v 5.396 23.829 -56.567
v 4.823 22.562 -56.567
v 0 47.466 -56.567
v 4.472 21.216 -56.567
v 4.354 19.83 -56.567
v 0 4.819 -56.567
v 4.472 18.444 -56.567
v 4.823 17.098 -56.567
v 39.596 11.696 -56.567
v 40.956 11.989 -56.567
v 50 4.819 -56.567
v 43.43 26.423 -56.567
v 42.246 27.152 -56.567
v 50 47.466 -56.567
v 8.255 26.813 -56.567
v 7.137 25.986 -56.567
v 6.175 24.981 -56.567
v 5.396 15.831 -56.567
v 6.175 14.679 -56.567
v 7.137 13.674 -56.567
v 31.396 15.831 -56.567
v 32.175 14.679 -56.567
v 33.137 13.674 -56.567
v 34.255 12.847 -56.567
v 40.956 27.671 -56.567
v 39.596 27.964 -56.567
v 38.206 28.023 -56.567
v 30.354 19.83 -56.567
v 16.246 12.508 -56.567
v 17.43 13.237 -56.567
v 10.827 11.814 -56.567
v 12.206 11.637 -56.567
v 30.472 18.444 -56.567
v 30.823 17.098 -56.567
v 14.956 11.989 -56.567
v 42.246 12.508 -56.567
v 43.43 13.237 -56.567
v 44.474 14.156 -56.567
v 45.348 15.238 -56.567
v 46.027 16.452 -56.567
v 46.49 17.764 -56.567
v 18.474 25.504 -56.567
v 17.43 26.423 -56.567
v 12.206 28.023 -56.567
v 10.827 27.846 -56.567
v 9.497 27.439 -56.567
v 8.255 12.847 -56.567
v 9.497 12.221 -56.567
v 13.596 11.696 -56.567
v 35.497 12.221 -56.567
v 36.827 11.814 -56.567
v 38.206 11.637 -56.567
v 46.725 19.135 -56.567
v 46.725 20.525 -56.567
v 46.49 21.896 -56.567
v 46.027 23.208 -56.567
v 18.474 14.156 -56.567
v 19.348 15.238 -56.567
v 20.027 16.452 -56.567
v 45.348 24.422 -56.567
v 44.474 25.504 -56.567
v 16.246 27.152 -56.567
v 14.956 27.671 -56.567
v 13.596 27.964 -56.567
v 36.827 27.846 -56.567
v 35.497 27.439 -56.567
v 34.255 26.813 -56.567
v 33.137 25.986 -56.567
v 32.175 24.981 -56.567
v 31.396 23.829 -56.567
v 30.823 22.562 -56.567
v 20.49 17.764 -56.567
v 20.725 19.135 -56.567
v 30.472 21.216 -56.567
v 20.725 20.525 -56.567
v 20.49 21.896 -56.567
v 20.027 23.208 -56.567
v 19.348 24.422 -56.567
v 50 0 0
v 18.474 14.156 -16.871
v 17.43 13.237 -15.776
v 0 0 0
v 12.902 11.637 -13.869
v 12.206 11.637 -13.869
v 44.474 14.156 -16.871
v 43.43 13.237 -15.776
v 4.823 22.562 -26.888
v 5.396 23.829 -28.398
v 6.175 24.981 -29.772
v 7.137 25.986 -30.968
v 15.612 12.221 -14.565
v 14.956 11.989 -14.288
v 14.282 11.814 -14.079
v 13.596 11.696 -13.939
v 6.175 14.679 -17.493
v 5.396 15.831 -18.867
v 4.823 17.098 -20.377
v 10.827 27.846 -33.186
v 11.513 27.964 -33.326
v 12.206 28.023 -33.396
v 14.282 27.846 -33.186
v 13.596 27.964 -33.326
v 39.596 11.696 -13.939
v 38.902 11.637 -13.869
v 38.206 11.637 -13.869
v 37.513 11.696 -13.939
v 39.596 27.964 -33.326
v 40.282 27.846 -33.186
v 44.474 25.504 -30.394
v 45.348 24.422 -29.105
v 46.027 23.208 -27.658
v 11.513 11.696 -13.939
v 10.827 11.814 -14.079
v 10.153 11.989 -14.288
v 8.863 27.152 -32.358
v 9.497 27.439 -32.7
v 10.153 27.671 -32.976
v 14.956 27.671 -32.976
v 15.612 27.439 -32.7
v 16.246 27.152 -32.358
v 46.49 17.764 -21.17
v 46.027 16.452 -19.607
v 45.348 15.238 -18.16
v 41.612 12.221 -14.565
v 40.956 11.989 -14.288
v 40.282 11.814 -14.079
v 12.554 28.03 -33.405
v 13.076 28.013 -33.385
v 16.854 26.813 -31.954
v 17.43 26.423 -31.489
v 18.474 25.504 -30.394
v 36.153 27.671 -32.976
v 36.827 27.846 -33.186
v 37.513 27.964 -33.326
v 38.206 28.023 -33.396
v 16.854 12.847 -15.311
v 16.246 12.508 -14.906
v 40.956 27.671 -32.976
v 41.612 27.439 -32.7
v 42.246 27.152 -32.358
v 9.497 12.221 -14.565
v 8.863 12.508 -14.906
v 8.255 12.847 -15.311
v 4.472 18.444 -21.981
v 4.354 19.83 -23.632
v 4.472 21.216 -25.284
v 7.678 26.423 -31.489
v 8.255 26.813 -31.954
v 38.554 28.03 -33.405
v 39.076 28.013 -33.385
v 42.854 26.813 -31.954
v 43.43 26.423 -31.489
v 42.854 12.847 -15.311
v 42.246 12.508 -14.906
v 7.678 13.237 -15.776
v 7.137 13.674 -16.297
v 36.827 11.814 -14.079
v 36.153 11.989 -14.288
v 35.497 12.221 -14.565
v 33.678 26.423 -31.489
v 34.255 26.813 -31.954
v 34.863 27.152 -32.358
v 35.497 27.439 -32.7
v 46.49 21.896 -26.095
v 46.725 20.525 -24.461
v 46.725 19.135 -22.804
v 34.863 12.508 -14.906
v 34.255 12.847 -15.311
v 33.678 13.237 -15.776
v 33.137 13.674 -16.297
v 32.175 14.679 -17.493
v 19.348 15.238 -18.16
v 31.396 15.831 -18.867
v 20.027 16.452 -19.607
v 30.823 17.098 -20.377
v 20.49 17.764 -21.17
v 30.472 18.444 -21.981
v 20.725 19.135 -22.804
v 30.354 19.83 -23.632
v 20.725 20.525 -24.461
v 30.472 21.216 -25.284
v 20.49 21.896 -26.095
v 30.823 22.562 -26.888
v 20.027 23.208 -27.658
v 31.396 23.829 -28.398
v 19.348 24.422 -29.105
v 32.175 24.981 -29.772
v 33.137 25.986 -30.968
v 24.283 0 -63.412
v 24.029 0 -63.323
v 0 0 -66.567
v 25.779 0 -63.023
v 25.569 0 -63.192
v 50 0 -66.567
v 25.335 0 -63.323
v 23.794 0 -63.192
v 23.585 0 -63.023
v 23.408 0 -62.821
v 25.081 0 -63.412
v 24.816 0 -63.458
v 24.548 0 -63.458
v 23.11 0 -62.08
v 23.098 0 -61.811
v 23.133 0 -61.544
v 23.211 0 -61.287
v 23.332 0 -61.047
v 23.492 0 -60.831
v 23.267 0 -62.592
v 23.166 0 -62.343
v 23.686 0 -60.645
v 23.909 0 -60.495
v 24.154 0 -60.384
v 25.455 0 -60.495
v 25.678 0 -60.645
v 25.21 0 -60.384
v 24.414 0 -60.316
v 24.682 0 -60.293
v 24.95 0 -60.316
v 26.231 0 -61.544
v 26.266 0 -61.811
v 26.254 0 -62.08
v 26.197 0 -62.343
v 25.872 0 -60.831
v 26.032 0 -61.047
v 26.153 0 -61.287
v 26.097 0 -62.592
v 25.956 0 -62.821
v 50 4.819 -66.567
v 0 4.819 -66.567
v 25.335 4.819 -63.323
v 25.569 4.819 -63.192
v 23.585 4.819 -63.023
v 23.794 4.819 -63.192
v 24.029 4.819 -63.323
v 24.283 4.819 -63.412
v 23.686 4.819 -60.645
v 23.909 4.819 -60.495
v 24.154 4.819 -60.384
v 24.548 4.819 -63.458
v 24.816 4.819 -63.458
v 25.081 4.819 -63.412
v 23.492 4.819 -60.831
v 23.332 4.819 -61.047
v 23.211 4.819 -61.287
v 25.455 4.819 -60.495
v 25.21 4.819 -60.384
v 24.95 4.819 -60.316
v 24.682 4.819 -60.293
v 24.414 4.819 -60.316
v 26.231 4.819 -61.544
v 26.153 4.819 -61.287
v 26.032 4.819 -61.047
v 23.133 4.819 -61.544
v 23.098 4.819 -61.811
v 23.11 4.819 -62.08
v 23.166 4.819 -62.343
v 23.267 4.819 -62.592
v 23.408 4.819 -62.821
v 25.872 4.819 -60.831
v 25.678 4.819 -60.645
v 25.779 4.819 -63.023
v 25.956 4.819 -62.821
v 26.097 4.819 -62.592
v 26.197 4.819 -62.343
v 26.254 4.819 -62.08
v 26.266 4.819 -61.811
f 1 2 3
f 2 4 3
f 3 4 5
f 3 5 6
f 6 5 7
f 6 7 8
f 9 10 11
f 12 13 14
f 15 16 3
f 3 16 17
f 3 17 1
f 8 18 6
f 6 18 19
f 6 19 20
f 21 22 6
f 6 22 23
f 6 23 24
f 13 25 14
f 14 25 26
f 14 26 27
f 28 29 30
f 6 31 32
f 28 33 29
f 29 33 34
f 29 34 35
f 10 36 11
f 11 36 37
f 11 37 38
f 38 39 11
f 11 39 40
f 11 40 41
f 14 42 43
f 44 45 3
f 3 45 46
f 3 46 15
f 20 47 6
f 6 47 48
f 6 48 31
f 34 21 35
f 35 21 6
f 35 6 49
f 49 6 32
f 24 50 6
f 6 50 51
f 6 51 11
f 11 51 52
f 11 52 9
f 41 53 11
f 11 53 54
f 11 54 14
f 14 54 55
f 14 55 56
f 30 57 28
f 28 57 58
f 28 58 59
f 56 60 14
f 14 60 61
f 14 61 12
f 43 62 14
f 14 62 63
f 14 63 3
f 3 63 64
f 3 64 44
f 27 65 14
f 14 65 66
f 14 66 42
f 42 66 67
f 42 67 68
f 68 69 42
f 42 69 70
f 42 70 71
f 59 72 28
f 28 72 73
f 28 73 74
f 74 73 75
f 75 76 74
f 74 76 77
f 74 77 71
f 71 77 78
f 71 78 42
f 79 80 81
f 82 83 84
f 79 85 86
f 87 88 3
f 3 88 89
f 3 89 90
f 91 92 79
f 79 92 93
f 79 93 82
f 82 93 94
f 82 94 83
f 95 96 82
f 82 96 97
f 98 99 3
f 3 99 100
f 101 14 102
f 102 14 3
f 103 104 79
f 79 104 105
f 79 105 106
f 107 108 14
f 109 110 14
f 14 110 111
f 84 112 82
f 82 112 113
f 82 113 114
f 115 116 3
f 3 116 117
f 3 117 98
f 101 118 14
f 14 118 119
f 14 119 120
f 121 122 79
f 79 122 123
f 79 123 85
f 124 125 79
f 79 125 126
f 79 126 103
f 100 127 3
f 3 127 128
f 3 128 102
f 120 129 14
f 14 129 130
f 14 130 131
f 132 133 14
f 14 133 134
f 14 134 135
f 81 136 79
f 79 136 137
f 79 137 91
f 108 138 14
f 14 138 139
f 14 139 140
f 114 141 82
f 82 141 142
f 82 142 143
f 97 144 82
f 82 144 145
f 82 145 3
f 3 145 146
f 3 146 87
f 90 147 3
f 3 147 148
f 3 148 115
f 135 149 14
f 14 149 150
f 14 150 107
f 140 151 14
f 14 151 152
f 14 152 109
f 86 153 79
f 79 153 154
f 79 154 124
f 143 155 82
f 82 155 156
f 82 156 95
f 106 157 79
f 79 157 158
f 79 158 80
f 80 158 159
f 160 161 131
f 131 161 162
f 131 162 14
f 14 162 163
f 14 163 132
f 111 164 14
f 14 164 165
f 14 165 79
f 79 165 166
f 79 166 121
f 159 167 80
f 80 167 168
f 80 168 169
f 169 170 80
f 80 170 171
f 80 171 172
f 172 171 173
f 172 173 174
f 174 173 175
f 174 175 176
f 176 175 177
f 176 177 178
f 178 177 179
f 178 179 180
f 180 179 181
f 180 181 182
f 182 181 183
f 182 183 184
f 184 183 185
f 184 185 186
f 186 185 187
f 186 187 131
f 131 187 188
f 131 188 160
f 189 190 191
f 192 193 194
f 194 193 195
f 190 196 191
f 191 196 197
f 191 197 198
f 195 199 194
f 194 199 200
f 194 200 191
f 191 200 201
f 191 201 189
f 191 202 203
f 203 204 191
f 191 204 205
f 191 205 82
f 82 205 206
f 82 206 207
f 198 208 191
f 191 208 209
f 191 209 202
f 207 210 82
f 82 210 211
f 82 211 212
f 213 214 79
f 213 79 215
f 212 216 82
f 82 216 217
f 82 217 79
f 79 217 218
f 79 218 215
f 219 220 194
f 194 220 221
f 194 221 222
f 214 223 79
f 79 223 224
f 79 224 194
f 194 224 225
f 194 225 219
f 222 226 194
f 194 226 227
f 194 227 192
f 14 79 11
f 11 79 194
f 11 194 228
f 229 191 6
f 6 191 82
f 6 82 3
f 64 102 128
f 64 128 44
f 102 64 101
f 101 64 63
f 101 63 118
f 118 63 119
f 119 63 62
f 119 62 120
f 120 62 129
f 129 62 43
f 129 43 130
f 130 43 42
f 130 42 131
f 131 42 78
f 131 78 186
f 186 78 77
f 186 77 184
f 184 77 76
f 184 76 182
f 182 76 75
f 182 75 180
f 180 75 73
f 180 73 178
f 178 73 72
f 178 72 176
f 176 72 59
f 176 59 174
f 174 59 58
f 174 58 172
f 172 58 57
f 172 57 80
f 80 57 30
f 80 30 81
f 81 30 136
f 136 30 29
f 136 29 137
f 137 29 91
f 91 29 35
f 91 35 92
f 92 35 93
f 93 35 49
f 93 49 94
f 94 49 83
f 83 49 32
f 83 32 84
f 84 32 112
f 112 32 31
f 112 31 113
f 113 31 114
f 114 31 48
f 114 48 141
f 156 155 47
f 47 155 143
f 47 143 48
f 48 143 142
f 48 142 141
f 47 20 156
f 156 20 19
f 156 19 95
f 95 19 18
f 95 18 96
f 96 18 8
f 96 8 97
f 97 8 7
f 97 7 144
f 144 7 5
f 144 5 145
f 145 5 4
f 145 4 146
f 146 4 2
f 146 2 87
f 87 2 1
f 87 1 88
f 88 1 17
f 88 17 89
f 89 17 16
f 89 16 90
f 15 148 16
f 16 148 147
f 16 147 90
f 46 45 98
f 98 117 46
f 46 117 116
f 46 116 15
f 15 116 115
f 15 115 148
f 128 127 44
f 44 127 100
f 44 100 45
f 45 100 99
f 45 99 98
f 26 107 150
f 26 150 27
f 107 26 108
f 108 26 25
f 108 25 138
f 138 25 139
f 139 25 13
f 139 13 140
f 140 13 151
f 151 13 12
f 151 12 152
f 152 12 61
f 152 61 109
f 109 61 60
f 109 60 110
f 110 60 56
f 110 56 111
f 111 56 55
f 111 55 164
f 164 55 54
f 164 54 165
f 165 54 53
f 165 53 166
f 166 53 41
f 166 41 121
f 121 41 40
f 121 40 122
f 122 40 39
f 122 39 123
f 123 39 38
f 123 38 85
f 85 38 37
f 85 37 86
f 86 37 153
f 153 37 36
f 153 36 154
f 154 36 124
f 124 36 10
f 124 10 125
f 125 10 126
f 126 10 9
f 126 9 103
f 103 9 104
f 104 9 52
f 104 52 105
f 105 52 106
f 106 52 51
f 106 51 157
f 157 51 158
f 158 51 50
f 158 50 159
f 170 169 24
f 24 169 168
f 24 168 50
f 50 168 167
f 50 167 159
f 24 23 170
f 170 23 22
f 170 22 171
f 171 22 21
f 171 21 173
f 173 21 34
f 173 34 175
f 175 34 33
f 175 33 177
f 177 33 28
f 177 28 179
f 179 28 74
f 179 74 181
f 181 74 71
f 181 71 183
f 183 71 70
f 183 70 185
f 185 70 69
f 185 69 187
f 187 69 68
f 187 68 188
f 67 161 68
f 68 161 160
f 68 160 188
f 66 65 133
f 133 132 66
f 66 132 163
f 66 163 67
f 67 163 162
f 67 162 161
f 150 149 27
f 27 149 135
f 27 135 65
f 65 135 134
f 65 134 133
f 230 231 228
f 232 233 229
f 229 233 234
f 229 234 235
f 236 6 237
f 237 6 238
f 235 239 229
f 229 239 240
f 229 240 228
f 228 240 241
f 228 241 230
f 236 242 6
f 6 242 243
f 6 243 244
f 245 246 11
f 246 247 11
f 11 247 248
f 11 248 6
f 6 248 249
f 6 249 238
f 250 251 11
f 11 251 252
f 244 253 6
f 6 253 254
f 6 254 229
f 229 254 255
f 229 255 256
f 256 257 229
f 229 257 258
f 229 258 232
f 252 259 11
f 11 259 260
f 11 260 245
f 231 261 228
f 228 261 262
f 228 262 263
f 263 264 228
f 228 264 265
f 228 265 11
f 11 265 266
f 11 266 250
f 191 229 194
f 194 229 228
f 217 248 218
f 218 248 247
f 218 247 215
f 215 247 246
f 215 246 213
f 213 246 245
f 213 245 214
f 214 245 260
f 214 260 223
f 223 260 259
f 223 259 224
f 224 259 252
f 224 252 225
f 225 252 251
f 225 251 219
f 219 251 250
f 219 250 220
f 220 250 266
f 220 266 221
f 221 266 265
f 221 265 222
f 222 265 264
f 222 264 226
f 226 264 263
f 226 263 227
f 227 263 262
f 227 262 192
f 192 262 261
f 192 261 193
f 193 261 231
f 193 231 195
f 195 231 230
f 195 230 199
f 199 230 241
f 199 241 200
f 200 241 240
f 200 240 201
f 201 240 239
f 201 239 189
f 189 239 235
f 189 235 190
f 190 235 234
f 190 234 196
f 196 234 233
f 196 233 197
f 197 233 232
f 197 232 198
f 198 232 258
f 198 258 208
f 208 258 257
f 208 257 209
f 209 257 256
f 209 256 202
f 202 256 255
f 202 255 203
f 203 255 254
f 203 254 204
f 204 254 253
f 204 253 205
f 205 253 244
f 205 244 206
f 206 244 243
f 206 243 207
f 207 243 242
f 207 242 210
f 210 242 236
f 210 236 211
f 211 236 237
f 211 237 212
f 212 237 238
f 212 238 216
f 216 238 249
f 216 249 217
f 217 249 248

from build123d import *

# Parameters (mm, degrees)
BOSS_EXTRUDE1_DEPTH = 50
SKETCH6_R           = 8.2
CUT_EXTRUDE5_DEPTH  = 75.17
SKETCH7_W           = 50
SKETCH7_H           = 4.818652416
BOSS_EXTRUDE3_DEPTH = 10
SKETCH8_R           = 1.585
CUT_EXTRUDE6_DEPTH  = 10


with BuildPart() as part:
    # Sketch1 → Boss-Extrude1 (new body)
    with BuildSketch(Plane(origin=(0, 0, 0), x_dir=(0, 0, -1), z_dir=(1, 0, 0))):
        Polygon((0, 0), (56.567210857, 0), (56.567210857, 47.465525767), align=None)
    extrude(amount=BOSS_EXTRUDE1_DEPTH)

    # Sketch6 → Cut-Extrude5 (cut)
    with BuildSketch(Plane(origin=(0, 0, -56.567210857), x_dir=(-1, 0, 0), z_dir=(0, 0, -1))):
        with Locations((-38.554443975, 19.83)):
            Circle(SKETCH6_R)
        with Locations((-12.554443975, 19.83)):
            Circle(SKETCH6_R)
    extrude(amount=-CUT_EXTRUDE5_DEPTH, mode=Mode.SUBTRACT)

    # Sketch7 → Boss-Extrude3 (add)
    with BuildSketch(Plane(origin=(0, 0, -56.567210857), x_dir=(-1, 0, 0), z_dir=(0, 0, -1))):
        with Locations((-25, 2.409326208)):
            Rectangle(SKETCH7_W, SKETCH7_H)
    extrude(amount=BOSS_EXTRUDE3_DEPTH)

    # Sketch8 → Cut-Extrude6 (cut)
    with BuildSketch(Plane(origin=(0, 4.818652416, 0), x_dir=(1, 0, 0), z_dir=(0, 1, 0))):
        with Locations(Location((24.681935477, 61.878402744, 0), (0, 0, 270))):
            Circle(SKETCH8_R)
    extrude(amount=-CUT_EXTRUDE6_DEPTH, mode=Mode.SUBTRACT)


solid = part.part
